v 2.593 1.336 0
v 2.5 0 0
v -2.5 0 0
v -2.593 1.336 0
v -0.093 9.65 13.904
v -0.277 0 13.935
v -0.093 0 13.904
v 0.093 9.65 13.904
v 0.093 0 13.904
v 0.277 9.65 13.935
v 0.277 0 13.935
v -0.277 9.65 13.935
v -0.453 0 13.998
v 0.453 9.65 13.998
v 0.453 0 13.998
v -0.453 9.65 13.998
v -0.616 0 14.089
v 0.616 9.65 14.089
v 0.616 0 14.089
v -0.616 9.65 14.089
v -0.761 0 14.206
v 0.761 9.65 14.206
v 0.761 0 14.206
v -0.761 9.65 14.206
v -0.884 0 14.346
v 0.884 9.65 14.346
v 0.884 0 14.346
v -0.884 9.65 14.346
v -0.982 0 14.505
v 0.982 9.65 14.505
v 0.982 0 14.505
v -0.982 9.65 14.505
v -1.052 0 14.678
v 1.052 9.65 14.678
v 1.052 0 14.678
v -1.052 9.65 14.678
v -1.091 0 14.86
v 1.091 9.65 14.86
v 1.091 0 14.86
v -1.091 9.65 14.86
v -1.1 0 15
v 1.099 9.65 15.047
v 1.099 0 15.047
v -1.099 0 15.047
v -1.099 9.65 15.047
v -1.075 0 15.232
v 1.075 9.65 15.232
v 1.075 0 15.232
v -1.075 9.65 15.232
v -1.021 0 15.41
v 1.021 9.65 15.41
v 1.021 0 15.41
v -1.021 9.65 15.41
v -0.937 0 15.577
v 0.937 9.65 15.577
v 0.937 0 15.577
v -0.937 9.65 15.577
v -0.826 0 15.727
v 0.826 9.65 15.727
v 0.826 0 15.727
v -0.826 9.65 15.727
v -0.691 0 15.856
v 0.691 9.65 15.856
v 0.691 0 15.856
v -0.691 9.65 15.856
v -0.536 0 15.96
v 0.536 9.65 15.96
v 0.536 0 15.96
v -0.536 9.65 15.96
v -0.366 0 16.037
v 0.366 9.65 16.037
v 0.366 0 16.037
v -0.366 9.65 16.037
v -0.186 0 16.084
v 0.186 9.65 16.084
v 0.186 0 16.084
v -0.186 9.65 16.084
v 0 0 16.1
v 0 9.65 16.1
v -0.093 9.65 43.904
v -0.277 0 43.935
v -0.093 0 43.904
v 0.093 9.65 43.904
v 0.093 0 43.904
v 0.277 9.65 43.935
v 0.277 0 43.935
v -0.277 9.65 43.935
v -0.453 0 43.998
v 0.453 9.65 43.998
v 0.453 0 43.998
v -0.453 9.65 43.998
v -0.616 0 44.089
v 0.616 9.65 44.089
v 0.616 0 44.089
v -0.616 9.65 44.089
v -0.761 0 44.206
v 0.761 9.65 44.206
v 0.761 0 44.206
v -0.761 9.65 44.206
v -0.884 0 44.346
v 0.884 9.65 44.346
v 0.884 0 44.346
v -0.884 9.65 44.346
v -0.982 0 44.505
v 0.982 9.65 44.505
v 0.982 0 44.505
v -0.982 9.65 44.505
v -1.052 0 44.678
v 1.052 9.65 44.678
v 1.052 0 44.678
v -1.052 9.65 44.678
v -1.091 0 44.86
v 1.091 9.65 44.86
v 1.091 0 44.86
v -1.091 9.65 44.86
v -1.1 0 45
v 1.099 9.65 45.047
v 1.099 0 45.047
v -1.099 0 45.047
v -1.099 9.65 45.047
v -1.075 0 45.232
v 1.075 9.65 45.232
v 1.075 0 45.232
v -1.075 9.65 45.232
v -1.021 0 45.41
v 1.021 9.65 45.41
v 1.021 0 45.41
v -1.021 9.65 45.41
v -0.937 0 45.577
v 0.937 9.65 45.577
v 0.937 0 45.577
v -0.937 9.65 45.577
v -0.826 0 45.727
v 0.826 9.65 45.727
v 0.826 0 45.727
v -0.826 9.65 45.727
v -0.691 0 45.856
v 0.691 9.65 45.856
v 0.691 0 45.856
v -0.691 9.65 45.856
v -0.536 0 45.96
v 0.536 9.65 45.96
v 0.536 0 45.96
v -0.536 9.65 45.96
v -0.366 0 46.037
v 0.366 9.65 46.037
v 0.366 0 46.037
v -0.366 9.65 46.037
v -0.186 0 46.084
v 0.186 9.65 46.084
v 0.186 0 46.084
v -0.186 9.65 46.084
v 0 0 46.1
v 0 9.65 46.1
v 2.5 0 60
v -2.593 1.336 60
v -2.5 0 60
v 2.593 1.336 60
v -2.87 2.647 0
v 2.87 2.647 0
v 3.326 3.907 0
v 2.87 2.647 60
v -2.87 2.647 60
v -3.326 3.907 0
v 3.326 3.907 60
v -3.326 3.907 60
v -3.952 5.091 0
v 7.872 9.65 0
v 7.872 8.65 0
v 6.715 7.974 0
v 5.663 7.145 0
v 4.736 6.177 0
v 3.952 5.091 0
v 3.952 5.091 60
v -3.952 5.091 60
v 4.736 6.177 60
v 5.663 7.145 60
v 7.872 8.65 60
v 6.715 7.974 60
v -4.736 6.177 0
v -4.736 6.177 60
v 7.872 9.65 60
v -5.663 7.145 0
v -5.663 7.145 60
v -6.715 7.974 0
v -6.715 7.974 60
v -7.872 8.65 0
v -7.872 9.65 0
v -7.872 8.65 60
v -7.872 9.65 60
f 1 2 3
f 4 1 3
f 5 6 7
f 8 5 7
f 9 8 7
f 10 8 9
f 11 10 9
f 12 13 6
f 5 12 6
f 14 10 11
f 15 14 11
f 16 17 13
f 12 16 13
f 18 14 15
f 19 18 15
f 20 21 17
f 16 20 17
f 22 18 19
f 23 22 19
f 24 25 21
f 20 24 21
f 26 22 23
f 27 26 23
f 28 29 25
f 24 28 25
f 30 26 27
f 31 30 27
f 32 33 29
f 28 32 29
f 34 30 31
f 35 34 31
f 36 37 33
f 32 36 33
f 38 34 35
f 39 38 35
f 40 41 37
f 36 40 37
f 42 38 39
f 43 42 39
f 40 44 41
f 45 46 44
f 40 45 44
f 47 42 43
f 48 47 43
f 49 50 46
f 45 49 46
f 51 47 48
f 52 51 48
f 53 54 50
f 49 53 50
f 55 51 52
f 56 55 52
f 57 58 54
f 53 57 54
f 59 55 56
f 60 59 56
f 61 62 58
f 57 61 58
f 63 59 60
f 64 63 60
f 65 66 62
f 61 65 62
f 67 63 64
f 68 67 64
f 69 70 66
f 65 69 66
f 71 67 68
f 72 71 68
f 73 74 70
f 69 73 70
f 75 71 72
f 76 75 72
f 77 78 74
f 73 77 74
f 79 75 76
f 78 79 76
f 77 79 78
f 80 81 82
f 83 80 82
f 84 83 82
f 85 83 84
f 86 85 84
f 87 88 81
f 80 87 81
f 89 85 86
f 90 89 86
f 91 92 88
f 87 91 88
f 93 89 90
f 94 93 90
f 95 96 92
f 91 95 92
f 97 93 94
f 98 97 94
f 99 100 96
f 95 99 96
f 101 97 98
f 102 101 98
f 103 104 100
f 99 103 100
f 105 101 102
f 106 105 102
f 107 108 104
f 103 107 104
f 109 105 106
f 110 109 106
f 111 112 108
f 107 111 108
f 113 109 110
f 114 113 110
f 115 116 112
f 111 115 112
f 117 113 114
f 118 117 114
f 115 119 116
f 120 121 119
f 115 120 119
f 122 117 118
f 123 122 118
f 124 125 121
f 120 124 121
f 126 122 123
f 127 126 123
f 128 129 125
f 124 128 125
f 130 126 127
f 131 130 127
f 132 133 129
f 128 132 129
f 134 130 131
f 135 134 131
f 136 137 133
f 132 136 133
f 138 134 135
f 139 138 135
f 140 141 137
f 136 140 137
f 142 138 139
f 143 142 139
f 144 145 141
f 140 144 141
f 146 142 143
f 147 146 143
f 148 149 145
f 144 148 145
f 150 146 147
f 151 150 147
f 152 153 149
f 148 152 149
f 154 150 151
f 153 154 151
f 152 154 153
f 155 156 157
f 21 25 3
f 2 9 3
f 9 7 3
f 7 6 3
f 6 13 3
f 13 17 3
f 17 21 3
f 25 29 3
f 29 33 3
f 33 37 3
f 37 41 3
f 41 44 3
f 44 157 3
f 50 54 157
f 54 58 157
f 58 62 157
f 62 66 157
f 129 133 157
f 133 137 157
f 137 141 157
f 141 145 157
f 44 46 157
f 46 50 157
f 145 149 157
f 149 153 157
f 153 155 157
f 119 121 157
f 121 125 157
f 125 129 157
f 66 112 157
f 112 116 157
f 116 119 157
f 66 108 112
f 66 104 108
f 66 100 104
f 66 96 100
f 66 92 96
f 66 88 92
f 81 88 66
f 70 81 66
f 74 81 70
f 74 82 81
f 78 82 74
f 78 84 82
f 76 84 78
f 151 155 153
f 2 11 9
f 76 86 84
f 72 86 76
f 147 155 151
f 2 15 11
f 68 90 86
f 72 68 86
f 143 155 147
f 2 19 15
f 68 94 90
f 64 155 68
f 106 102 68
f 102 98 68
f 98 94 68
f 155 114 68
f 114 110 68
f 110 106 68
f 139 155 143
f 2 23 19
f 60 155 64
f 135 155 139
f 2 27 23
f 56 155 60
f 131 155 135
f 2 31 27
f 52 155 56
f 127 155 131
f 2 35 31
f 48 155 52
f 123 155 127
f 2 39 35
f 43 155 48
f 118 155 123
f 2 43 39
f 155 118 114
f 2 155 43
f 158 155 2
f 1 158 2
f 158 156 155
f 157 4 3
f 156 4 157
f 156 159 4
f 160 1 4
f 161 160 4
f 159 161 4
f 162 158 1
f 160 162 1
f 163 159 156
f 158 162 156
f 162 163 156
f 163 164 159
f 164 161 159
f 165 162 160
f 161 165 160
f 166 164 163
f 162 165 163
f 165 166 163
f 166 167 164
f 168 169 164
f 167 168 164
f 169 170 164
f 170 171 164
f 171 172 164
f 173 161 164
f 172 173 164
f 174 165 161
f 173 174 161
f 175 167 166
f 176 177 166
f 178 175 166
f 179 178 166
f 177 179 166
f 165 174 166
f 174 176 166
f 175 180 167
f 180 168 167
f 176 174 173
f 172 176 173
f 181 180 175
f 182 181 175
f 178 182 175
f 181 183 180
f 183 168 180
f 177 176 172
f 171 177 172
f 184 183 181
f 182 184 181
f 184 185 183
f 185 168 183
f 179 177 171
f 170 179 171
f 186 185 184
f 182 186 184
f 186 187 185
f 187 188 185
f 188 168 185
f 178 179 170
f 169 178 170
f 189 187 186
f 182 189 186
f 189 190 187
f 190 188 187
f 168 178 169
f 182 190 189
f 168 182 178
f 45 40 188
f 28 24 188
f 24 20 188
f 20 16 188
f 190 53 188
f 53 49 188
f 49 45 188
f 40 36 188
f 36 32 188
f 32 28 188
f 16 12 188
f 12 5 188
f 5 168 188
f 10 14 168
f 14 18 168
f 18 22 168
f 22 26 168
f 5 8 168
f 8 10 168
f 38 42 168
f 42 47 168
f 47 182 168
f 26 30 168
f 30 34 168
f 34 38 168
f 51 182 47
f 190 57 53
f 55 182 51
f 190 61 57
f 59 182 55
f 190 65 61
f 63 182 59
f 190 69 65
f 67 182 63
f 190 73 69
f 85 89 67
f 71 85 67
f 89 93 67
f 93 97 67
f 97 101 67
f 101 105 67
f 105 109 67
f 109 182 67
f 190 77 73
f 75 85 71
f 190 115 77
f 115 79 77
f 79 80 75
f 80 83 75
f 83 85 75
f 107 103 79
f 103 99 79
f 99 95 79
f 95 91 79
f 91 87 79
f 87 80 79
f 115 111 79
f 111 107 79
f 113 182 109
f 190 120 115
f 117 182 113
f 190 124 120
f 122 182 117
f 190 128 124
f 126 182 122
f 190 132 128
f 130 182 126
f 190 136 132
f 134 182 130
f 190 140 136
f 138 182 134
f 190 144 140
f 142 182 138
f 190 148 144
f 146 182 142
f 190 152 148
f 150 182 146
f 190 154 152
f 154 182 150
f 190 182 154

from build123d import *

# Parameters (mm, degrees)
BOSS_EXTRUDE1_DEPTH        = 60
F_2_2_2_2_DIAMETER_HOLE1_D = 2.2


with BuildPart() as part:
    # Sketch1 → Boss-Extrude1 (new body)
    with BuildSketch(Plane.XY):
        with BuildLine():
            Line((-2.5, 0), (2.5, 0))
            ThreePointArc((2.5, 0), (3.95232497, 5.091230117), (7.872150073, 8.65))
            Line((7.872150073, 8.65), (7.872150073, 9.65))
            Line((7.872150073, 9.65), (-7.872150073, 9.65))
            Line((-7.872150073, 9.65), (-7.872150073, 8.65))
            ThreePointArc((-7.872150073, 8.65), (-3.95232497, 5.091230117), (-2.5, 0))
        make_face()
    extrude(amount=BOSS_EXTRUDE1_DEPTH)

    # Ø2.2 (2.2) Diameter Hole1 (through all)
    with Locations(Plane(origin=(0, 9.65, 45), x_dir=(0, 0, 1), z_dir=(0, 1, 0))):
        with Locations((0, 0), (-30, 0)):
            Hole(F_2_2_2_2_DIAMETER_HOLE1_D / 2)


solid = part.part
